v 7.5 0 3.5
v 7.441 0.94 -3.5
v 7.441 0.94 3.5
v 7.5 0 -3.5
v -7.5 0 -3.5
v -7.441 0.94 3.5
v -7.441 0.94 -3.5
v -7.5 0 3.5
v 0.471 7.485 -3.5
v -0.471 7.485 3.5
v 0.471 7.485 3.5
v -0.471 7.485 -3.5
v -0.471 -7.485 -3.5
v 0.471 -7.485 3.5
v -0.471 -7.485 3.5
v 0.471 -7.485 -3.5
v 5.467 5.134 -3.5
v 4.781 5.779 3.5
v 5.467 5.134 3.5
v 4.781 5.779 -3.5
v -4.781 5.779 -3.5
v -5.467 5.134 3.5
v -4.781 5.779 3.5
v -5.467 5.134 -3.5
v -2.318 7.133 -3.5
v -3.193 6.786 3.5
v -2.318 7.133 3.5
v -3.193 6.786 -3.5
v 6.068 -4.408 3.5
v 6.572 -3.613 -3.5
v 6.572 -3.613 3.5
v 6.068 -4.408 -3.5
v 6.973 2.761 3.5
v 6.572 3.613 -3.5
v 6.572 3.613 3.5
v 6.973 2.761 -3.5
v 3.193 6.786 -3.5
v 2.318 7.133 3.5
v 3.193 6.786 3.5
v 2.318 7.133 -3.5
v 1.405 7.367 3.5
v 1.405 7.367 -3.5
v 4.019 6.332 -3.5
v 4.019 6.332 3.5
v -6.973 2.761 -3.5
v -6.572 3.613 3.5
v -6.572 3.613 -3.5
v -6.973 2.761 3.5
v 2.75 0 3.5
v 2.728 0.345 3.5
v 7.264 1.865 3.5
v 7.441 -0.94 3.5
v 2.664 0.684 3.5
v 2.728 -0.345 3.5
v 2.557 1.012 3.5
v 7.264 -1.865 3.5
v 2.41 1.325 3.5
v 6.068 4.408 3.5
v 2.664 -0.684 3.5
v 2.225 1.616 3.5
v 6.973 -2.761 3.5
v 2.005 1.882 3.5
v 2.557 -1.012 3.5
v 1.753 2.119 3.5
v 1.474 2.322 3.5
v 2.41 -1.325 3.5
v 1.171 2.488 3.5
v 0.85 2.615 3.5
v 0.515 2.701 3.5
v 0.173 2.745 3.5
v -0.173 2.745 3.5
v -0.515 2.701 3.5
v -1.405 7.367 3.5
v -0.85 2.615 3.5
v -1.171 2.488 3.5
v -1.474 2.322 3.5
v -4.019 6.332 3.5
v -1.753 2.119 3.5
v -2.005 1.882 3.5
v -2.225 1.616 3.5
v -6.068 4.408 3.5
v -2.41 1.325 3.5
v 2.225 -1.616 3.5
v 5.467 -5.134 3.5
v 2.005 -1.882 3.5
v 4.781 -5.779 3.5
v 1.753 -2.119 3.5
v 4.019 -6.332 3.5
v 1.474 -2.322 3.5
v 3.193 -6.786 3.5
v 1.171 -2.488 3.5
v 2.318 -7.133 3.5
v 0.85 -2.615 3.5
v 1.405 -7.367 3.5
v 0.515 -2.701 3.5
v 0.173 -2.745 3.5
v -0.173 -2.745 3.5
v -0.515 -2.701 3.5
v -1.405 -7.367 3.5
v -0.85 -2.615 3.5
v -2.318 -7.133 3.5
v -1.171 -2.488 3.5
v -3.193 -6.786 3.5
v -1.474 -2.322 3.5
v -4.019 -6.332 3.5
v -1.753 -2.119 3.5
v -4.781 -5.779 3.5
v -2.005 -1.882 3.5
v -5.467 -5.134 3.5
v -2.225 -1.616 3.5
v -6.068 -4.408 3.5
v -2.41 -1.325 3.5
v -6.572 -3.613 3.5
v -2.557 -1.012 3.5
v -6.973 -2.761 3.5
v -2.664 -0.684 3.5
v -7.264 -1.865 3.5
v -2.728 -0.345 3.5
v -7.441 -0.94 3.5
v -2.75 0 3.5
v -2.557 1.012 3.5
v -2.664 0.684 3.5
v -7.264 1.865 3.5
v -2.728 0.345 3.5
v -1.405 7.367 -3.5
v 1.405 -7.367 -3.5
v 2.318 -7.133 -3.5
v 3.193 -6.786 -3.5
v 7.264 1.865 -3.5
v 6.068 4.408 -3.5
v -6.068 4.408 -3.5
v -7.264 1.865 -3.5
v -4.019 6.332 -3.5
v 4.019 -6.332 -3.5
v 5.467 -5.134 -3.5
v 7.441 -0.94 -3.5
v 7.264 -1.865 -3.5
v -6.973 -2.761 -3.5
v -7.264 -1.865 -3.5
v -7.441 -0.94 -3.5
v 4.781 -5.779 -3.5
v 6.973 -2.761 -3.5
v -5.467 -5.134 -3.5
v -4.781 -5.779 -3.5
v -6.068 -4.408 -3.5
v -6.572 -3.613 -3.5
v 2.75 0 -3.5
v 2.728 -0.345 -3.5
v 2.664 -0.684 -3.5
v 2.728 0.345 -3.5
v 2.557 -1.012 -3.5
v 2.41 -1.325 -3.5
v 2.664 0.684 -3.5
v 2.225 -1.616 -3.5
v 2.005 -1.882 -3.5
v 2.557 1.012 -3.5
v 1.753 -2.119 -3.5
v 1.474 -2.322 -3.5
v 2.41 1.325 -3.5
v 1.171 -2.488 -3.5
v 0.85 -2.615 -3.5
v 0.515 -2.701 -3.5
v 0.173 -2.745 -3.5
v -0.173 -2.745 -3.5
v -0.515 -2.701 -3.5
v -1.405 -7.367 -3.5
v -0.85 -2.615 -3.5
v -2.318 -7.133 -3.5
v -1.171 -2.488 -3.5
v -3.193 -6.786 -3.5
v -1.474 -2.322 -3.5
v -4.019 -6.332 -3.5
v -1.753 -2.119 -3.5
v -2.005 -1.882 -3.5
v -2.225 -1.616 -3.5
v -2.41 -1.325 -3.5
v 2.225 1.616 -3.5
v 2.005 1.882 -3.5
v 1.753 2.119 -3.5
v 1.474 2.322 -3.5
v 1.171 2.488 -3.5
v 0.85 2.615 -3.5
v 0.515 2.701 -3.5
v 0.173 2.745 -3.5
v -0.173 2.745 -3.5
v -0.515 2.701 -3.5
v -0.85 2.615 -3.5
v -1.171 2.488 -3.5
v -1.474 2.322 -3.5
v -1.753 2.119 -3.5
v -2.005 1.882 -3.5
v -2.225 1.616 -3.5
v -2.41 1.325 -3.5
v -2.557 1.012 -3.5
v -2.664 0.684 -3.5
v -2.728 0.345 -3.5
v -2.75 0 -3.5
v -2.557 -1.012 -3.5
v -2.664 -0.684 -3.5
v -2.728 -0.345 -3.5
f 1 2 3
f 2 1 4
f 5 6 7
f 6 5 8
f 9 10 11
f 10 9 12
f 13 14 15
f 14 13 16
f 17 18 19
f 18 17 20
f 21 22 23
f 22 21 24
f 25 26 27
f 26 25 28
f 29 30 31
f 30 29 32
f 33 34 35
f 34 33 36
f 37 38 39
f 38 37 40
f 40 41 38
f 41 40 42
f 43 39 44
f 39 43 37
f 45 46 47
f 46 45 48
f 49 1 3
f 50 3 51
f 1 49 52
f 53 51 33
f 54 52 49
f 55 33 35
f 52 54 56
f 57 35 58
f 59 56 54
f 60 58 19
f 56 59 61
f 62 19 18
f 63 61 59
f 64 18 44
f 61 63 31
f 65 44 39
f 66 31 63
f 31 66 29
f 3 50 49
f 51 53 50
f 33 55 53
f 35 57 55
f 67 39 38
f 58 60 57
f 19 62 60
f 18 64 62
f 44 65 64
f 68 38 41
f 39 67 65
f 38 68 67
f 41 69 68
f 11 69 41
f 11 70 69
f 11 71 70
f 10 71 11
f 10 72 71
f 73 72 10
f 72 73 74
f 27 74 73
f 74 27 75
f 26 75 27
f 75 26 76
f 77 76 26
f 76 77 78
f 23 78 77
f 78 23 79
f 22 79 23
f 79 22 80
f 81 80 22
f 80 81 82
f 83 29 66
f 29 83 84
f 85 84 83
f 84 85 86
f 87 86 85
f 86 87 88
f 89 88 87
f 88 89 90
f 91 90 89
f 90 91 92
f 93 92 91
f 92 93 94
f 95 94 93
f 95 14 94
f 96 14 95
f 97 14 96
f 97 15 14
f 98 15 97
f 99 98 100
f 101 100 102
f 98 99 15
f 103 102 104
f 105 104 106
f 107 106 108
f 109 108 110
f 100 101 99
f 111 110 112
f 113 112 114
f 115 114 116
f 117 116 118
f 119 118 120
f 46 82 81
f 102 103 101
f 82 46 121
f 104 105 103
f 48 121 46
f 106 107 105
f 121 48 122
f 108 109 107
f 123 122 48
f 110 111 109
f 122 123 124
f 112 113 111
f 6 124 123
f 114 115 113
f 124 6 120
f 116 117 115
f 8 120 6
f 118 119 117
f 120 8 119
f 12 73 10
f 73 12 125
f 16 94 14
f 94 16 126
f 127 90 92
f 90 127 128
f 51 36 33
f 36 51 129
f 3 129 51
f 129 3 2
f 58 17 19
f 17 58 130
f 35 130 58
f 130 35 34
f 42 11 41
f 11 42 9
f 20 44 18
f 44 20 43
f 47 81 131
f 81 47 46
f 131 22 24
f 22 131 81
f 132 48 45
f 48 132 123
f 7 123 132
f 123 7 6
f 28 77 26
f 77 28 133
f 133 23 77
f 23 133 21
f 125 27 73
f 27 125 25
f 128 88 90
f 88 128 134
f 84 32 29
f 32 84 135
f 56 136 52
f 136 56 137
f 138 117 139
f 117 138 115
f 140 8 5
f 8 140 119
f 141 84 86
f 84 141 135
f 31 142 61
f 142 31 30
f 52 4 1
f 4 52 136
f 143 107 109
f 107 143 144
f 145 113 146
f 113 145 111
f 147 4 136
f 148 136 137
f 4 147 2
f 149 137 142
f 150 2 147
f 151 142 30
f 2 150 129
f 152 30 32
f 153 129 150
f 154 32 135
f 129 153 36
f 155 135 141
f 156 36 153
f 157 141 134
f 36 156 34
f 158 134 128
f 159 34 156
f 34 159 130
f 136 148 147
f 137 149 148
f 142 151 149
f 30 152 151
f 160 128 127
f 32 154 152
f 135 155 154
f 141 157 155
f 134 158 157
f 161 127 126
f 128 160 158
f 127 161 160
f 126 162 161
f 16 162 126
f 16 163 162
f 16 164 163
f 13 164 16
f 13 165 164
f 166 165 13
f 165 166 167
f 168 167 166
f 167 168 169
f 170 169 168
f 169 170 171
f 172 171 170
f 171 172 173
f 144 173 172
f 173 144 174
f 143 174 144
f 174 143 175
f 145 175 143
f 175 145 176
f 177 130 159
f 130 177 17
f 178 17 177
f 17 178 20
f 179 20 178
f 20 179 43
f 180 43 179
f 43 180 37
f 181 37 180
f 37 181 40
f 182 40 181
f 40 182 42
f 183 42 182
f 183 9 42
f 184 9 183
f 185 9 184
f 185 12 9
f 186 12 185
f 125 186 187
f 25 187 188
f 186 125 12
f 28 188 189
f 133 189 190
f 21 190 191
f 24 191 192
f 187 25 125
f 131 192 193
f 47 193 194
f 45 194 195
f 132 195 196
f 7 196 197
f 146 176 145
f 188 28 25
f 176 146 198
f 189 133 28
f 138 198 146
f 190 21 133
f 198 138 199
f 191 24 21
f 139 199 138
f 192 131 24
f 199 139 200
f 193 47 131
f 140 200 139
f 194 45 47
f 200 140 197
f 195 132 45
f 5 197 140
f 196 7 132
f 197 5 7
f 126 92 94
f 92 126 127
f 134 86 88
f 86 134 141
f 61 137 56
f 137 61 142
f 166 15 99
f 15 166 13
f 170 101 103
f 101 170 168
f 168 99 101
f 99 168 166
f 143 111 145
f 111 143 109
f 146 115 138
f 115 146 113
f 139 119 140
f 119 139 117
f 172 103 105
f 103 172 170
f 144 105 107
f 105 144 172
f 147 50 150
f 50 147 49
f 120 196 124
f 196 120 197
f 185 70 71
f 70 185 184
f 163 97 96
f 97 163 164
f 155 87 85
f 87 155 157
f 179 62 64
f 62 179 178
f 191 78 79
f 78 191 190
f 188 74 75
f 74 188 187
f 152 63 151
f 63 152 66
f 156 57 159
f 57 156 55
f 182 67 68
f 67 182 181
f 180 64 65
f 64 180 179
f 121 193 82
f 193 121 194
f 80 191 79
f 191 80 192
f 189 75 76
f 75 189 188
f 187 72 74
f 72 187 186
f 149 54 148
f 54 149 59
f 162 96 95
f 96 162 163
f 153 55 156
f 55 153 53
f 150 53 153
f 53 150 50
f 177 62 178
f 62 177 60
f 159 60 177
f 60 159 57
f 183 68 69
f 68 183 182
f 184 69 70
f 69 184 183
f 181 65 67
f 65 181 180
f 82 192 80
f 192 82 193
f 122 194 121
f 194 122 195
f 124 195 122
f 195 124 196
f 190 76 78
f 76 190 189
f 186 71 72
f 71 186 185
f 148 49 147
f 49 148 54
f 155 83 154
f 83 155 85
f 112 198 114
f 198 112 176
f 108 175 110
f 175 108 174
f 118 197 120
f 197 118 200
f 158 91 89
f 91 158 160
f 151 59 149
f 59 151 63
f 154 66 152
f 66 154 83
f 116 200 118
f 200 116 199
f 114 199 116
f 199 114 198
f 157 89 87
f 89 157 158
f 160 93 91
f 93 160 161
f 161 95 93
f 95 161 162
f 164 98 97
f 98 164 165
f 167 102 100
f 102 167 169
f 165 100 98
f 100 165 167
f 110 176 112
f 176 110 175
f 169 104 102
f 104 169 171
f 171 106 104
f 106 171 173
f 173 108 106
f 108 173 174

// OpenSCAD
$fn = 50;


difference() {
	union() {
		translate(v = [0, 0, -3.5000000000]) {
			cylinder(h = 7, r = 7.5000000000);
		}
	}
	union() {
		translate(v = [0, 0, -100.0000000000]) {
			cylinder(h = 200, r = 2.7500000000);
		}
	}
}
